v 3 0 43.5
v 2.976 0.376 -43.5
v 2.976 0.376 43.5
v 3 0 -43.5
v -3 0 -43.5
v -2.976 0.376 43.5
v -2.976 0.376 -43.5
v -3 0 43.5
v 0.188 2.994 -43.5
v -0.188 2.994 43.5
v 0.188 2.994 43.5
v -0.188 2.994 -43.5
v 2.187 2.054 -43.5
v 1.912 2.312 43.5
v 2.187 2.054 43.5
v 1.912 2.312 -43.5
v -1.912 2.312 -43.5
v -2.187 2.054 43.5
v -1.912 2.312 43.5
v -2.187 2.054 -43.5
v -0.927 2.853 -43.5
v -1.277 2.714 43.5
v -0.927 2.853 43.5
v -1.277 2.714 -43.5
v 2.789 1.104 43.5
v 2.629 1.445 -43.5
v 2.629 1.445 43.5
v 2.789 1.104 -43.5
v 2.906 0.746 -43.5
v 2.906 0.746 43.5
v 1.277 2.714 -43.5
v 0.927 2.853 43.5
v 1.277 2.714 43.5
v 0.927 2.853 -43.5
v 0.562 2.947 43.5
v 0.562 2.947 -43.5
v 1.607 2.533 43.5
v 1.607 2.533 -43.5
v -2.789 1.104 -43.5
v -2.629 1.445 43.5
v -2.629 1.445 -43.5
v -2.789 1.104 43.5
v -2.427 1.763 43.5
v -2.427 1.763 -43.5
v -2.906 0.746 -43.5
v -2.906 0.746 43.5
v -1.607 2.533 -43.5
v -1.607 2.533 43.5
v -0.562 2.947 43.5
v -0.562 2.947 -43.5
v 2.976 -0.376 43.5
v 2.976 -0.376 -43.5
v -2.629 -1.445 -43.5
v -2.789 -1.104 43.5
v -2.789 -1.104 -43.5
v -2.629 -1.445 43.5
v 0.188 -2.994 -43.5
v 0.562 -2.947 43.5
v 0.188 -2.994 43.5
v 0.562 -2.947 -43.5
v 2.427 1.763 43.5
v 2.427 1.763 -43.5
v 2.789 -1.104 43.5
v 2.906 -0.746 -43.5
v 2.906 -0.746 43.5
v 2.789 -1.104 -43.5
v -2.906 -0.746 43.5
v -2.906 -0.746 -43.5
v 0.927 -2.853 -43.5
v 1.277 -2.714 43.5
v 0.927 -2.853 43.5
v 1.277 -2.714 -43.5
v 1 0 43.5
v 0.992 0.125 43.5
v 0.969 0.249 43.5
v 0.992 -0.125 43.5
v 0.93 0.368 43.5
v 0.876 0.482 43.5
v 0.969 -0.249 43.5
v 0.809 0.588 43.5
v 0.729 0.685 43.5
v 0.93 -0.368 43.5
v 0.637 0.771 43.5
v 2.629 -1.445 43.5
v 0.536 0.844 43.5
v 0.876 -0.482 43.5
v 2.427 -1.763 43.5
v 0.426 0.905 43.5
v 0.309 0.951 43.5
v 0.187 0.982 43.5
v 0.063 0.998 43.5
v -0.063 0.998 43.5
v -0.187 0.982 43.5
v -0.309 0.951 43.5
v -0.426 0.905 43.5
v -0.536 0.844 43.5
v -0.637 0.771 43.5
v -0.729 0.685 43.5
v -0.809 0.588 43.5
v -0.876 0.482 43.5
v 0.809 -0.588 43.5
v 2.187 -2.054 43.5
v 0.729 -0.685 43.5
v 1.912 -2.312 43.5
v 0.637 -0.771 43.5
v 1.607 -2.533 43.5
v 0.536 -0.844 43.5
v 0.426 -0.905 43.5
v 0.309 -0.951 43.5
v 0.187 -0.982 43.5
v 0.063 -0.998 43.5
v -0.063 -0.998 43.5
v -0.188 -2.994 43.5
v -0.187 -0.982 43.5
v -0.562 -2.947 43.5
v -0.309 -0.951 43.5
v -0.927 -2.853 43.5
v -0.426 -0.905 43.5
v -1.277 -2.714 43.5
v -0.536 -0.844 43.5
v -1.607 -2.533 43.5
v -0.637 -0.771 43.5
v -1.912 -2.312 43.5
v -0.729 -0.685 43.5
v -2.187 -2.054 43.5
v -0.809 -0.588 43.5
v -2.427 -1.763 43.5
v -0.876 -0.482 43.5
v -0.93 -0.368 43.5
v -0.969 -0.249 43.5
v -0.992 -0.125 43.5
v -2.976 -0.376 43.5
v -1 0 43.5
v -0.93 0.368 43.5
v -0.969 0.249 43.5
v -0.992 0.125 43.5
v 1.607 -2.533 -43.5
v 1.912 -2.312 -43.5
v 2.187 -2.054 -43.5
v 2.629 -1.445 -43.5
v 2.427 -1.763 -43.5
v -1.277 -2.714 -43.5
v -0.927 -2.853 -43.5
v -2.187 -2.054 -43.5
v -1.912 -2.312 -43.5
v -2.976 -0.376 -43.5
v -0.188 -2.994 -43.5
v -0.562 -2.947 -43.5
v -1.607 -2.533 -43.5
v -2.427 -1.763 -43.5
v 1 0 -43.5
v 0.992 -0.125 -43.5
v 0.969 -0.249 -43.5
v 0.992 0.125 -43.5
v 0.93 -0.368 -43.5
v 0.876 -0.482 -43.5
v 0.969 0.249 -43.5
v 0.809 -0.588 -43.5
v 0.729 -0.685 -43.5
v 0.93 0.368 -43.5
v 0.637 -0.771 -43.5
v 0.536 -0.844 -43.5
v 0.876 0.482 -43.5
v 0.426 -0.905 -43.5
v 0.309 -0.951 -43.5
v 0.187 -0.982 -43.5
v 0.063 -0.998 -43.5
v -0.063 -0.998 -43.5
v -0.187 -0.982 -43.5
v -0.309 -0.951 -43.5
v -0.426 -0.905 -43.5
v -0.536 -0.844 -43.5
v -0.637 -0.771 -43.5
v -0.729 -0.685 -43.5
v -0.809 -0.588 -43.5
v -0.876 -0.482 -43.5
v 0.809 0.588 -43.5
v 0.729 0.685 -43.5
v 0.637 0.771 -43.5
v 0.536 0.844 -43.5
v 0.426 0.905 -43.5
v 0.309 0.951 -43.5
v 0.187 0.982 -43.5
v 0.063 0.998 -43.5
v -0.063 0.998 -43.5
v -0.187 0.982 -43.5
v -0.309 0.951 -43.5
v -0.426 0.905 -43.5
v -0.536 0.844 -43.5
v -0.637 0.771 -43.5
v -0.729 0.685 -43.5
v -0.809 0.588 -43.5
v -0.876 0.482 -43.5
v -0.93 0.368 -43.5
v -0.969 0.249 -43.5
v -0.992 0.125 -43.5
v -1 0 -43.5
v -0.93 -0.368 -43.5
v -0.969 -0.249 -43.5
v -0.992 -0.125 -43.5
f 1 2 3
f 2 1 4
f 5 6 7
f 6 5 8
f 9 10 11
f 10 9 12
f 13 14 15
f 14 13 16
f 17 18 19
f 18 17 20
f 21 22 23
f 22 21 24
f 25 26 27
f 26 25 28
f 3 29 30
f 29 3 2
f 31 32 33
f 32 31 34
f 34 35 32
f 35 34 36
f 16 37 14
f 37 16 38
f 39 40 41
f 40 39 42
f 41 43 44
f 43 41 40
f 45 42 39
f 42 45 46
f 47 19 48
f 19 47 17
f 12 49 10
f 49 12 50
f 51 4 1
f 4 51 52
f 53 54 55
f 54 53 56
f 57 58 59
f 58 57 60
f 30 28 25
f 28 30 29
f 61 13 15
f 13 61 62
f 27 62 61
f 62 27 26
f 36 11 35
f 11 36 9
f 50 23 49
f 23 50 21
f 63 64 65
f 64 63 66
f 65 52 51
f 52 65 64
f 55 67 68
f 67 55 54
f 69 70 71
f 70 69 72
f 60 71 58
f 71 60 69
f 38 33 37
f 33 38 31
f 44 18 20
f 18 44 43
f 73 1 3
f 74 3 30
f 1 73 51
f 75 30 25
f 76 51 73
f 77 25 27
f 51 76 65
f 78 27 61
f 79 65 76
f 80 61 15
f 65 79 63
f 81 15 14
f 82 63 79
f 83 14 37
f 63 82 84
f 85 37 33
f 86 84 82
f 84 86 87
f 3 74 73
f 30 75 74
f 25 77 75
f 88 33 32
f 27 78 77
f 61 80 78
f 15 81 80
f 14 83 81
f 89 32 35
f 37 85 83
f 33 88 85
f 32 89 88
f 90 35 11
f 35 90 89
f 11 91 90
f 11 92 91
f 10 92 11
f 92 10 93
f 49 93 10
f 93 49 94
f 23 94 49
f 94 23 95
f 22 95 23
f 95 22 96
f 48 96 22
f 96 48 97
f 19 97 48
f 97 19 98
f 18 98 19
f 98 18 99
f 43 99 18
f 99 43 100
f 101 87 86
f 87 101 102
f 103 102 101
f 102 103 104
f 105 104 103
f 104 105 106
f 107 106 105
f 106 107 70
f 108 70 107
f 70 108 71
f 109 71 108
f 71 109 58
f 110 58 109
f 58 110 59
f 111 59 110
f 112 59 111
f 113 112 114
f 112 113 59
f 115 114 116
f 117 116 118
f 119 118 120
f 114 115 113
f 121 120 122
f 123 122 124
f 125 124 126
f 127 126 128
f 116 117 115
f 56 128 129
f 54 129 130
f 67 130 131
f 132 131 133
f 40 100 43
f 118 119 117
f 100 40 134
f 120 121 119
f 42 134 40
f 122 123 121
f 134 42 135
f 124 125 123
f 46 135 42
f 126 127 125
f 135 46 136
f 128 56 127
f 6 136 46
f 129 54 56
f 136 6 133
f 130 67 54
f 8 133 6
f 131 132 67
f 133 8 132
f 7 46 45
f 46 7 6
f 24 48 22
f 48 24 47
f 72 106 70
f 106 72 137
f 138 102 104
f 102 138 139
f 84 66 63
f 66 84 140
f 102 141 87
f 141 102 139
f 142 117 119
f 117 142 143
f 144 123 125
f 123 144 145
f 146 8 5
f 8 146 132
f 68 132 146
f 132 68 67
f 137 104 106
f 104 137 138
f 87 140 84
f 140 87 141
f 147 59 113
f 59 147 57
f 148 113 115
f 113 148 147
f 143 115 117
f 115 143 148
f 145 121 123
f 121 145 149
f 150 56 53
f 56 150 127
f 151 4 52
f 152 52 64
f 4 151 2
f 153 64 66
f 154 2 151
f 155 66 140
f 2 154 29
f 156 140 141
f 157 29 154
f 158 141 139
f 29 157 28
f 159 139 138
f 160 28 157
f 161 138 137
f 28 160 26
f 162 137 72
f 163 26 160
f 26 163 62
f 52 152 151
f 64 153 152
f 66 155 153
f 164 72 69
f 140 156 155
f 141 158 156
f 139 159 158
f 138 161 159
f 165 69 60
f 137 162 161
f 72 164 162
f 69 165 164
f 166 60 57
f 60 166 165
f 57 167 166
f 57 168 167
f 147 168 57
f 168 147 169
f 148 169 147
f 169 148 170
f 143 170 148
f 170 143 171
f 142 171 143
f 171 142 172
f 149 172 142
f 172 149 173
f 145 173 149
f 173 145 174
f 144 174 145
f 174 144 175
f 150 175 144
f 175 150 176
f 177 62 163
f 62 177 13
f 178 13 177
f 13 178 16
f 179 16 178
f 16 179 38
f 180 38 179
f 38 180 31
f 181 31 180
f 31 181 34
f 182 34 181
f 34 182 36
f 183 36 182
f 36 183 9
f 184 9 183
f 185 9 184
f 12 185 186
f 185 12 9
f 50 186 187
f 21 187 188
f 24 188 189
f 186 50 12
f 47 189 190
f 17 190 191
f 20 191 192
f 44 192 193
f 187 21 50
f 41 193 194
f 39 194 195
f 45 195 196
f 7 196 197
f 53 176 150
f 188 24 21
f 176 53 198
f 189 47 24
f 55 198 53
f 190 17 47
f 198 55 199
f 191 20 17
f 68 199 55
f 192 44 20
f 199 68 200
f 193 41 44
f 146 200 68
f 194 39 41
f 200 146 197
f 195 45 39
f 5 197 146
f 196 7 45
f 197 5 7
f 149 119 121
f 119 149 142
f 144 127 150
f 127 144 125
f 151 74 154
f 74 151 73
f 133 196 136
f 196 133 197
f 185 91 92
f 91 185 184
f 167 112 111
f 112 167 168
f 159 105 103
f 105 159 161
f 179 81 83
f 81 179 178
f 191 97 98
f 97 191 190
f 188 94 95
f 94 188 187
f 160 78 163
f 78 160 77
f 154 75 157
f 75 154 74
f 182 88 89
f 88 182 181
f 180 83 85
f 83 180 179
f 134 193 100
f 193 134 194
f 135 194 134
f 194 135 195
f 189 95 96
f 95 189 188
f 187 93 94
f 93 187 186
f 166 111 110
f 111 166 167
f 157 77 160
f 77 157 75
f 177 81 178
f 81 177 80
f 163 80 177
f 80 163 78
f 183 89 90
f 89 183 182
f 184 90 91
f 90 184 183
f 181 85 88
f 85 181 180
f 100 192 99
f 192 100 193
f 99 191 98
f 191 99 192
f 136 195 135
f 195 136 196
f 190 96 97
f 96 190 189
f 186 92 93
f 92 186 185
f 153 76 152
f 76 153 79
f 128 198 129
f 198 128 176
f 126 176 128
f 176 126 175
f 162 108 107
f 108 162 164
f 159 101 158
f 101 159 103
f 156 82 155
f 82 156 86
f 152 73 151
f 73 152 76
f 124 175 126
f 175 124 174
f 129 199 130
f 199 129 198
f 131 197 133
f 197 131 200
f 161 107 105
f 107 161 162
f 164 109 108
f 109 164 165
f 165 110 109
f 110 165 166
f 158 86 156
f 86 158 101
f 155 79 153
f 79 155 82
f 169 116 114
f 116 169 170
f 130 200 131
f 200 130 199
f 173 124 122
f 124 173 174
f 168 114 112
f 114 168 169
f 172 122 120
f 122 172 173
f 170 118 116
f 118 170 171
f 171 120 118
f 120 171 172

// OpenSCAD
$fn = 50;


difference() {
	union() {
		translate(v = [0, 0, -43.5000000000]) {
			cylinder(h = 87, r = 3.0000000000);
		}
	}
	union() {
		translate(v = [0, 0, -100.0000000000]) {
			cylinder(h = 200, r = 1.0000000000);
		}
	}
}
